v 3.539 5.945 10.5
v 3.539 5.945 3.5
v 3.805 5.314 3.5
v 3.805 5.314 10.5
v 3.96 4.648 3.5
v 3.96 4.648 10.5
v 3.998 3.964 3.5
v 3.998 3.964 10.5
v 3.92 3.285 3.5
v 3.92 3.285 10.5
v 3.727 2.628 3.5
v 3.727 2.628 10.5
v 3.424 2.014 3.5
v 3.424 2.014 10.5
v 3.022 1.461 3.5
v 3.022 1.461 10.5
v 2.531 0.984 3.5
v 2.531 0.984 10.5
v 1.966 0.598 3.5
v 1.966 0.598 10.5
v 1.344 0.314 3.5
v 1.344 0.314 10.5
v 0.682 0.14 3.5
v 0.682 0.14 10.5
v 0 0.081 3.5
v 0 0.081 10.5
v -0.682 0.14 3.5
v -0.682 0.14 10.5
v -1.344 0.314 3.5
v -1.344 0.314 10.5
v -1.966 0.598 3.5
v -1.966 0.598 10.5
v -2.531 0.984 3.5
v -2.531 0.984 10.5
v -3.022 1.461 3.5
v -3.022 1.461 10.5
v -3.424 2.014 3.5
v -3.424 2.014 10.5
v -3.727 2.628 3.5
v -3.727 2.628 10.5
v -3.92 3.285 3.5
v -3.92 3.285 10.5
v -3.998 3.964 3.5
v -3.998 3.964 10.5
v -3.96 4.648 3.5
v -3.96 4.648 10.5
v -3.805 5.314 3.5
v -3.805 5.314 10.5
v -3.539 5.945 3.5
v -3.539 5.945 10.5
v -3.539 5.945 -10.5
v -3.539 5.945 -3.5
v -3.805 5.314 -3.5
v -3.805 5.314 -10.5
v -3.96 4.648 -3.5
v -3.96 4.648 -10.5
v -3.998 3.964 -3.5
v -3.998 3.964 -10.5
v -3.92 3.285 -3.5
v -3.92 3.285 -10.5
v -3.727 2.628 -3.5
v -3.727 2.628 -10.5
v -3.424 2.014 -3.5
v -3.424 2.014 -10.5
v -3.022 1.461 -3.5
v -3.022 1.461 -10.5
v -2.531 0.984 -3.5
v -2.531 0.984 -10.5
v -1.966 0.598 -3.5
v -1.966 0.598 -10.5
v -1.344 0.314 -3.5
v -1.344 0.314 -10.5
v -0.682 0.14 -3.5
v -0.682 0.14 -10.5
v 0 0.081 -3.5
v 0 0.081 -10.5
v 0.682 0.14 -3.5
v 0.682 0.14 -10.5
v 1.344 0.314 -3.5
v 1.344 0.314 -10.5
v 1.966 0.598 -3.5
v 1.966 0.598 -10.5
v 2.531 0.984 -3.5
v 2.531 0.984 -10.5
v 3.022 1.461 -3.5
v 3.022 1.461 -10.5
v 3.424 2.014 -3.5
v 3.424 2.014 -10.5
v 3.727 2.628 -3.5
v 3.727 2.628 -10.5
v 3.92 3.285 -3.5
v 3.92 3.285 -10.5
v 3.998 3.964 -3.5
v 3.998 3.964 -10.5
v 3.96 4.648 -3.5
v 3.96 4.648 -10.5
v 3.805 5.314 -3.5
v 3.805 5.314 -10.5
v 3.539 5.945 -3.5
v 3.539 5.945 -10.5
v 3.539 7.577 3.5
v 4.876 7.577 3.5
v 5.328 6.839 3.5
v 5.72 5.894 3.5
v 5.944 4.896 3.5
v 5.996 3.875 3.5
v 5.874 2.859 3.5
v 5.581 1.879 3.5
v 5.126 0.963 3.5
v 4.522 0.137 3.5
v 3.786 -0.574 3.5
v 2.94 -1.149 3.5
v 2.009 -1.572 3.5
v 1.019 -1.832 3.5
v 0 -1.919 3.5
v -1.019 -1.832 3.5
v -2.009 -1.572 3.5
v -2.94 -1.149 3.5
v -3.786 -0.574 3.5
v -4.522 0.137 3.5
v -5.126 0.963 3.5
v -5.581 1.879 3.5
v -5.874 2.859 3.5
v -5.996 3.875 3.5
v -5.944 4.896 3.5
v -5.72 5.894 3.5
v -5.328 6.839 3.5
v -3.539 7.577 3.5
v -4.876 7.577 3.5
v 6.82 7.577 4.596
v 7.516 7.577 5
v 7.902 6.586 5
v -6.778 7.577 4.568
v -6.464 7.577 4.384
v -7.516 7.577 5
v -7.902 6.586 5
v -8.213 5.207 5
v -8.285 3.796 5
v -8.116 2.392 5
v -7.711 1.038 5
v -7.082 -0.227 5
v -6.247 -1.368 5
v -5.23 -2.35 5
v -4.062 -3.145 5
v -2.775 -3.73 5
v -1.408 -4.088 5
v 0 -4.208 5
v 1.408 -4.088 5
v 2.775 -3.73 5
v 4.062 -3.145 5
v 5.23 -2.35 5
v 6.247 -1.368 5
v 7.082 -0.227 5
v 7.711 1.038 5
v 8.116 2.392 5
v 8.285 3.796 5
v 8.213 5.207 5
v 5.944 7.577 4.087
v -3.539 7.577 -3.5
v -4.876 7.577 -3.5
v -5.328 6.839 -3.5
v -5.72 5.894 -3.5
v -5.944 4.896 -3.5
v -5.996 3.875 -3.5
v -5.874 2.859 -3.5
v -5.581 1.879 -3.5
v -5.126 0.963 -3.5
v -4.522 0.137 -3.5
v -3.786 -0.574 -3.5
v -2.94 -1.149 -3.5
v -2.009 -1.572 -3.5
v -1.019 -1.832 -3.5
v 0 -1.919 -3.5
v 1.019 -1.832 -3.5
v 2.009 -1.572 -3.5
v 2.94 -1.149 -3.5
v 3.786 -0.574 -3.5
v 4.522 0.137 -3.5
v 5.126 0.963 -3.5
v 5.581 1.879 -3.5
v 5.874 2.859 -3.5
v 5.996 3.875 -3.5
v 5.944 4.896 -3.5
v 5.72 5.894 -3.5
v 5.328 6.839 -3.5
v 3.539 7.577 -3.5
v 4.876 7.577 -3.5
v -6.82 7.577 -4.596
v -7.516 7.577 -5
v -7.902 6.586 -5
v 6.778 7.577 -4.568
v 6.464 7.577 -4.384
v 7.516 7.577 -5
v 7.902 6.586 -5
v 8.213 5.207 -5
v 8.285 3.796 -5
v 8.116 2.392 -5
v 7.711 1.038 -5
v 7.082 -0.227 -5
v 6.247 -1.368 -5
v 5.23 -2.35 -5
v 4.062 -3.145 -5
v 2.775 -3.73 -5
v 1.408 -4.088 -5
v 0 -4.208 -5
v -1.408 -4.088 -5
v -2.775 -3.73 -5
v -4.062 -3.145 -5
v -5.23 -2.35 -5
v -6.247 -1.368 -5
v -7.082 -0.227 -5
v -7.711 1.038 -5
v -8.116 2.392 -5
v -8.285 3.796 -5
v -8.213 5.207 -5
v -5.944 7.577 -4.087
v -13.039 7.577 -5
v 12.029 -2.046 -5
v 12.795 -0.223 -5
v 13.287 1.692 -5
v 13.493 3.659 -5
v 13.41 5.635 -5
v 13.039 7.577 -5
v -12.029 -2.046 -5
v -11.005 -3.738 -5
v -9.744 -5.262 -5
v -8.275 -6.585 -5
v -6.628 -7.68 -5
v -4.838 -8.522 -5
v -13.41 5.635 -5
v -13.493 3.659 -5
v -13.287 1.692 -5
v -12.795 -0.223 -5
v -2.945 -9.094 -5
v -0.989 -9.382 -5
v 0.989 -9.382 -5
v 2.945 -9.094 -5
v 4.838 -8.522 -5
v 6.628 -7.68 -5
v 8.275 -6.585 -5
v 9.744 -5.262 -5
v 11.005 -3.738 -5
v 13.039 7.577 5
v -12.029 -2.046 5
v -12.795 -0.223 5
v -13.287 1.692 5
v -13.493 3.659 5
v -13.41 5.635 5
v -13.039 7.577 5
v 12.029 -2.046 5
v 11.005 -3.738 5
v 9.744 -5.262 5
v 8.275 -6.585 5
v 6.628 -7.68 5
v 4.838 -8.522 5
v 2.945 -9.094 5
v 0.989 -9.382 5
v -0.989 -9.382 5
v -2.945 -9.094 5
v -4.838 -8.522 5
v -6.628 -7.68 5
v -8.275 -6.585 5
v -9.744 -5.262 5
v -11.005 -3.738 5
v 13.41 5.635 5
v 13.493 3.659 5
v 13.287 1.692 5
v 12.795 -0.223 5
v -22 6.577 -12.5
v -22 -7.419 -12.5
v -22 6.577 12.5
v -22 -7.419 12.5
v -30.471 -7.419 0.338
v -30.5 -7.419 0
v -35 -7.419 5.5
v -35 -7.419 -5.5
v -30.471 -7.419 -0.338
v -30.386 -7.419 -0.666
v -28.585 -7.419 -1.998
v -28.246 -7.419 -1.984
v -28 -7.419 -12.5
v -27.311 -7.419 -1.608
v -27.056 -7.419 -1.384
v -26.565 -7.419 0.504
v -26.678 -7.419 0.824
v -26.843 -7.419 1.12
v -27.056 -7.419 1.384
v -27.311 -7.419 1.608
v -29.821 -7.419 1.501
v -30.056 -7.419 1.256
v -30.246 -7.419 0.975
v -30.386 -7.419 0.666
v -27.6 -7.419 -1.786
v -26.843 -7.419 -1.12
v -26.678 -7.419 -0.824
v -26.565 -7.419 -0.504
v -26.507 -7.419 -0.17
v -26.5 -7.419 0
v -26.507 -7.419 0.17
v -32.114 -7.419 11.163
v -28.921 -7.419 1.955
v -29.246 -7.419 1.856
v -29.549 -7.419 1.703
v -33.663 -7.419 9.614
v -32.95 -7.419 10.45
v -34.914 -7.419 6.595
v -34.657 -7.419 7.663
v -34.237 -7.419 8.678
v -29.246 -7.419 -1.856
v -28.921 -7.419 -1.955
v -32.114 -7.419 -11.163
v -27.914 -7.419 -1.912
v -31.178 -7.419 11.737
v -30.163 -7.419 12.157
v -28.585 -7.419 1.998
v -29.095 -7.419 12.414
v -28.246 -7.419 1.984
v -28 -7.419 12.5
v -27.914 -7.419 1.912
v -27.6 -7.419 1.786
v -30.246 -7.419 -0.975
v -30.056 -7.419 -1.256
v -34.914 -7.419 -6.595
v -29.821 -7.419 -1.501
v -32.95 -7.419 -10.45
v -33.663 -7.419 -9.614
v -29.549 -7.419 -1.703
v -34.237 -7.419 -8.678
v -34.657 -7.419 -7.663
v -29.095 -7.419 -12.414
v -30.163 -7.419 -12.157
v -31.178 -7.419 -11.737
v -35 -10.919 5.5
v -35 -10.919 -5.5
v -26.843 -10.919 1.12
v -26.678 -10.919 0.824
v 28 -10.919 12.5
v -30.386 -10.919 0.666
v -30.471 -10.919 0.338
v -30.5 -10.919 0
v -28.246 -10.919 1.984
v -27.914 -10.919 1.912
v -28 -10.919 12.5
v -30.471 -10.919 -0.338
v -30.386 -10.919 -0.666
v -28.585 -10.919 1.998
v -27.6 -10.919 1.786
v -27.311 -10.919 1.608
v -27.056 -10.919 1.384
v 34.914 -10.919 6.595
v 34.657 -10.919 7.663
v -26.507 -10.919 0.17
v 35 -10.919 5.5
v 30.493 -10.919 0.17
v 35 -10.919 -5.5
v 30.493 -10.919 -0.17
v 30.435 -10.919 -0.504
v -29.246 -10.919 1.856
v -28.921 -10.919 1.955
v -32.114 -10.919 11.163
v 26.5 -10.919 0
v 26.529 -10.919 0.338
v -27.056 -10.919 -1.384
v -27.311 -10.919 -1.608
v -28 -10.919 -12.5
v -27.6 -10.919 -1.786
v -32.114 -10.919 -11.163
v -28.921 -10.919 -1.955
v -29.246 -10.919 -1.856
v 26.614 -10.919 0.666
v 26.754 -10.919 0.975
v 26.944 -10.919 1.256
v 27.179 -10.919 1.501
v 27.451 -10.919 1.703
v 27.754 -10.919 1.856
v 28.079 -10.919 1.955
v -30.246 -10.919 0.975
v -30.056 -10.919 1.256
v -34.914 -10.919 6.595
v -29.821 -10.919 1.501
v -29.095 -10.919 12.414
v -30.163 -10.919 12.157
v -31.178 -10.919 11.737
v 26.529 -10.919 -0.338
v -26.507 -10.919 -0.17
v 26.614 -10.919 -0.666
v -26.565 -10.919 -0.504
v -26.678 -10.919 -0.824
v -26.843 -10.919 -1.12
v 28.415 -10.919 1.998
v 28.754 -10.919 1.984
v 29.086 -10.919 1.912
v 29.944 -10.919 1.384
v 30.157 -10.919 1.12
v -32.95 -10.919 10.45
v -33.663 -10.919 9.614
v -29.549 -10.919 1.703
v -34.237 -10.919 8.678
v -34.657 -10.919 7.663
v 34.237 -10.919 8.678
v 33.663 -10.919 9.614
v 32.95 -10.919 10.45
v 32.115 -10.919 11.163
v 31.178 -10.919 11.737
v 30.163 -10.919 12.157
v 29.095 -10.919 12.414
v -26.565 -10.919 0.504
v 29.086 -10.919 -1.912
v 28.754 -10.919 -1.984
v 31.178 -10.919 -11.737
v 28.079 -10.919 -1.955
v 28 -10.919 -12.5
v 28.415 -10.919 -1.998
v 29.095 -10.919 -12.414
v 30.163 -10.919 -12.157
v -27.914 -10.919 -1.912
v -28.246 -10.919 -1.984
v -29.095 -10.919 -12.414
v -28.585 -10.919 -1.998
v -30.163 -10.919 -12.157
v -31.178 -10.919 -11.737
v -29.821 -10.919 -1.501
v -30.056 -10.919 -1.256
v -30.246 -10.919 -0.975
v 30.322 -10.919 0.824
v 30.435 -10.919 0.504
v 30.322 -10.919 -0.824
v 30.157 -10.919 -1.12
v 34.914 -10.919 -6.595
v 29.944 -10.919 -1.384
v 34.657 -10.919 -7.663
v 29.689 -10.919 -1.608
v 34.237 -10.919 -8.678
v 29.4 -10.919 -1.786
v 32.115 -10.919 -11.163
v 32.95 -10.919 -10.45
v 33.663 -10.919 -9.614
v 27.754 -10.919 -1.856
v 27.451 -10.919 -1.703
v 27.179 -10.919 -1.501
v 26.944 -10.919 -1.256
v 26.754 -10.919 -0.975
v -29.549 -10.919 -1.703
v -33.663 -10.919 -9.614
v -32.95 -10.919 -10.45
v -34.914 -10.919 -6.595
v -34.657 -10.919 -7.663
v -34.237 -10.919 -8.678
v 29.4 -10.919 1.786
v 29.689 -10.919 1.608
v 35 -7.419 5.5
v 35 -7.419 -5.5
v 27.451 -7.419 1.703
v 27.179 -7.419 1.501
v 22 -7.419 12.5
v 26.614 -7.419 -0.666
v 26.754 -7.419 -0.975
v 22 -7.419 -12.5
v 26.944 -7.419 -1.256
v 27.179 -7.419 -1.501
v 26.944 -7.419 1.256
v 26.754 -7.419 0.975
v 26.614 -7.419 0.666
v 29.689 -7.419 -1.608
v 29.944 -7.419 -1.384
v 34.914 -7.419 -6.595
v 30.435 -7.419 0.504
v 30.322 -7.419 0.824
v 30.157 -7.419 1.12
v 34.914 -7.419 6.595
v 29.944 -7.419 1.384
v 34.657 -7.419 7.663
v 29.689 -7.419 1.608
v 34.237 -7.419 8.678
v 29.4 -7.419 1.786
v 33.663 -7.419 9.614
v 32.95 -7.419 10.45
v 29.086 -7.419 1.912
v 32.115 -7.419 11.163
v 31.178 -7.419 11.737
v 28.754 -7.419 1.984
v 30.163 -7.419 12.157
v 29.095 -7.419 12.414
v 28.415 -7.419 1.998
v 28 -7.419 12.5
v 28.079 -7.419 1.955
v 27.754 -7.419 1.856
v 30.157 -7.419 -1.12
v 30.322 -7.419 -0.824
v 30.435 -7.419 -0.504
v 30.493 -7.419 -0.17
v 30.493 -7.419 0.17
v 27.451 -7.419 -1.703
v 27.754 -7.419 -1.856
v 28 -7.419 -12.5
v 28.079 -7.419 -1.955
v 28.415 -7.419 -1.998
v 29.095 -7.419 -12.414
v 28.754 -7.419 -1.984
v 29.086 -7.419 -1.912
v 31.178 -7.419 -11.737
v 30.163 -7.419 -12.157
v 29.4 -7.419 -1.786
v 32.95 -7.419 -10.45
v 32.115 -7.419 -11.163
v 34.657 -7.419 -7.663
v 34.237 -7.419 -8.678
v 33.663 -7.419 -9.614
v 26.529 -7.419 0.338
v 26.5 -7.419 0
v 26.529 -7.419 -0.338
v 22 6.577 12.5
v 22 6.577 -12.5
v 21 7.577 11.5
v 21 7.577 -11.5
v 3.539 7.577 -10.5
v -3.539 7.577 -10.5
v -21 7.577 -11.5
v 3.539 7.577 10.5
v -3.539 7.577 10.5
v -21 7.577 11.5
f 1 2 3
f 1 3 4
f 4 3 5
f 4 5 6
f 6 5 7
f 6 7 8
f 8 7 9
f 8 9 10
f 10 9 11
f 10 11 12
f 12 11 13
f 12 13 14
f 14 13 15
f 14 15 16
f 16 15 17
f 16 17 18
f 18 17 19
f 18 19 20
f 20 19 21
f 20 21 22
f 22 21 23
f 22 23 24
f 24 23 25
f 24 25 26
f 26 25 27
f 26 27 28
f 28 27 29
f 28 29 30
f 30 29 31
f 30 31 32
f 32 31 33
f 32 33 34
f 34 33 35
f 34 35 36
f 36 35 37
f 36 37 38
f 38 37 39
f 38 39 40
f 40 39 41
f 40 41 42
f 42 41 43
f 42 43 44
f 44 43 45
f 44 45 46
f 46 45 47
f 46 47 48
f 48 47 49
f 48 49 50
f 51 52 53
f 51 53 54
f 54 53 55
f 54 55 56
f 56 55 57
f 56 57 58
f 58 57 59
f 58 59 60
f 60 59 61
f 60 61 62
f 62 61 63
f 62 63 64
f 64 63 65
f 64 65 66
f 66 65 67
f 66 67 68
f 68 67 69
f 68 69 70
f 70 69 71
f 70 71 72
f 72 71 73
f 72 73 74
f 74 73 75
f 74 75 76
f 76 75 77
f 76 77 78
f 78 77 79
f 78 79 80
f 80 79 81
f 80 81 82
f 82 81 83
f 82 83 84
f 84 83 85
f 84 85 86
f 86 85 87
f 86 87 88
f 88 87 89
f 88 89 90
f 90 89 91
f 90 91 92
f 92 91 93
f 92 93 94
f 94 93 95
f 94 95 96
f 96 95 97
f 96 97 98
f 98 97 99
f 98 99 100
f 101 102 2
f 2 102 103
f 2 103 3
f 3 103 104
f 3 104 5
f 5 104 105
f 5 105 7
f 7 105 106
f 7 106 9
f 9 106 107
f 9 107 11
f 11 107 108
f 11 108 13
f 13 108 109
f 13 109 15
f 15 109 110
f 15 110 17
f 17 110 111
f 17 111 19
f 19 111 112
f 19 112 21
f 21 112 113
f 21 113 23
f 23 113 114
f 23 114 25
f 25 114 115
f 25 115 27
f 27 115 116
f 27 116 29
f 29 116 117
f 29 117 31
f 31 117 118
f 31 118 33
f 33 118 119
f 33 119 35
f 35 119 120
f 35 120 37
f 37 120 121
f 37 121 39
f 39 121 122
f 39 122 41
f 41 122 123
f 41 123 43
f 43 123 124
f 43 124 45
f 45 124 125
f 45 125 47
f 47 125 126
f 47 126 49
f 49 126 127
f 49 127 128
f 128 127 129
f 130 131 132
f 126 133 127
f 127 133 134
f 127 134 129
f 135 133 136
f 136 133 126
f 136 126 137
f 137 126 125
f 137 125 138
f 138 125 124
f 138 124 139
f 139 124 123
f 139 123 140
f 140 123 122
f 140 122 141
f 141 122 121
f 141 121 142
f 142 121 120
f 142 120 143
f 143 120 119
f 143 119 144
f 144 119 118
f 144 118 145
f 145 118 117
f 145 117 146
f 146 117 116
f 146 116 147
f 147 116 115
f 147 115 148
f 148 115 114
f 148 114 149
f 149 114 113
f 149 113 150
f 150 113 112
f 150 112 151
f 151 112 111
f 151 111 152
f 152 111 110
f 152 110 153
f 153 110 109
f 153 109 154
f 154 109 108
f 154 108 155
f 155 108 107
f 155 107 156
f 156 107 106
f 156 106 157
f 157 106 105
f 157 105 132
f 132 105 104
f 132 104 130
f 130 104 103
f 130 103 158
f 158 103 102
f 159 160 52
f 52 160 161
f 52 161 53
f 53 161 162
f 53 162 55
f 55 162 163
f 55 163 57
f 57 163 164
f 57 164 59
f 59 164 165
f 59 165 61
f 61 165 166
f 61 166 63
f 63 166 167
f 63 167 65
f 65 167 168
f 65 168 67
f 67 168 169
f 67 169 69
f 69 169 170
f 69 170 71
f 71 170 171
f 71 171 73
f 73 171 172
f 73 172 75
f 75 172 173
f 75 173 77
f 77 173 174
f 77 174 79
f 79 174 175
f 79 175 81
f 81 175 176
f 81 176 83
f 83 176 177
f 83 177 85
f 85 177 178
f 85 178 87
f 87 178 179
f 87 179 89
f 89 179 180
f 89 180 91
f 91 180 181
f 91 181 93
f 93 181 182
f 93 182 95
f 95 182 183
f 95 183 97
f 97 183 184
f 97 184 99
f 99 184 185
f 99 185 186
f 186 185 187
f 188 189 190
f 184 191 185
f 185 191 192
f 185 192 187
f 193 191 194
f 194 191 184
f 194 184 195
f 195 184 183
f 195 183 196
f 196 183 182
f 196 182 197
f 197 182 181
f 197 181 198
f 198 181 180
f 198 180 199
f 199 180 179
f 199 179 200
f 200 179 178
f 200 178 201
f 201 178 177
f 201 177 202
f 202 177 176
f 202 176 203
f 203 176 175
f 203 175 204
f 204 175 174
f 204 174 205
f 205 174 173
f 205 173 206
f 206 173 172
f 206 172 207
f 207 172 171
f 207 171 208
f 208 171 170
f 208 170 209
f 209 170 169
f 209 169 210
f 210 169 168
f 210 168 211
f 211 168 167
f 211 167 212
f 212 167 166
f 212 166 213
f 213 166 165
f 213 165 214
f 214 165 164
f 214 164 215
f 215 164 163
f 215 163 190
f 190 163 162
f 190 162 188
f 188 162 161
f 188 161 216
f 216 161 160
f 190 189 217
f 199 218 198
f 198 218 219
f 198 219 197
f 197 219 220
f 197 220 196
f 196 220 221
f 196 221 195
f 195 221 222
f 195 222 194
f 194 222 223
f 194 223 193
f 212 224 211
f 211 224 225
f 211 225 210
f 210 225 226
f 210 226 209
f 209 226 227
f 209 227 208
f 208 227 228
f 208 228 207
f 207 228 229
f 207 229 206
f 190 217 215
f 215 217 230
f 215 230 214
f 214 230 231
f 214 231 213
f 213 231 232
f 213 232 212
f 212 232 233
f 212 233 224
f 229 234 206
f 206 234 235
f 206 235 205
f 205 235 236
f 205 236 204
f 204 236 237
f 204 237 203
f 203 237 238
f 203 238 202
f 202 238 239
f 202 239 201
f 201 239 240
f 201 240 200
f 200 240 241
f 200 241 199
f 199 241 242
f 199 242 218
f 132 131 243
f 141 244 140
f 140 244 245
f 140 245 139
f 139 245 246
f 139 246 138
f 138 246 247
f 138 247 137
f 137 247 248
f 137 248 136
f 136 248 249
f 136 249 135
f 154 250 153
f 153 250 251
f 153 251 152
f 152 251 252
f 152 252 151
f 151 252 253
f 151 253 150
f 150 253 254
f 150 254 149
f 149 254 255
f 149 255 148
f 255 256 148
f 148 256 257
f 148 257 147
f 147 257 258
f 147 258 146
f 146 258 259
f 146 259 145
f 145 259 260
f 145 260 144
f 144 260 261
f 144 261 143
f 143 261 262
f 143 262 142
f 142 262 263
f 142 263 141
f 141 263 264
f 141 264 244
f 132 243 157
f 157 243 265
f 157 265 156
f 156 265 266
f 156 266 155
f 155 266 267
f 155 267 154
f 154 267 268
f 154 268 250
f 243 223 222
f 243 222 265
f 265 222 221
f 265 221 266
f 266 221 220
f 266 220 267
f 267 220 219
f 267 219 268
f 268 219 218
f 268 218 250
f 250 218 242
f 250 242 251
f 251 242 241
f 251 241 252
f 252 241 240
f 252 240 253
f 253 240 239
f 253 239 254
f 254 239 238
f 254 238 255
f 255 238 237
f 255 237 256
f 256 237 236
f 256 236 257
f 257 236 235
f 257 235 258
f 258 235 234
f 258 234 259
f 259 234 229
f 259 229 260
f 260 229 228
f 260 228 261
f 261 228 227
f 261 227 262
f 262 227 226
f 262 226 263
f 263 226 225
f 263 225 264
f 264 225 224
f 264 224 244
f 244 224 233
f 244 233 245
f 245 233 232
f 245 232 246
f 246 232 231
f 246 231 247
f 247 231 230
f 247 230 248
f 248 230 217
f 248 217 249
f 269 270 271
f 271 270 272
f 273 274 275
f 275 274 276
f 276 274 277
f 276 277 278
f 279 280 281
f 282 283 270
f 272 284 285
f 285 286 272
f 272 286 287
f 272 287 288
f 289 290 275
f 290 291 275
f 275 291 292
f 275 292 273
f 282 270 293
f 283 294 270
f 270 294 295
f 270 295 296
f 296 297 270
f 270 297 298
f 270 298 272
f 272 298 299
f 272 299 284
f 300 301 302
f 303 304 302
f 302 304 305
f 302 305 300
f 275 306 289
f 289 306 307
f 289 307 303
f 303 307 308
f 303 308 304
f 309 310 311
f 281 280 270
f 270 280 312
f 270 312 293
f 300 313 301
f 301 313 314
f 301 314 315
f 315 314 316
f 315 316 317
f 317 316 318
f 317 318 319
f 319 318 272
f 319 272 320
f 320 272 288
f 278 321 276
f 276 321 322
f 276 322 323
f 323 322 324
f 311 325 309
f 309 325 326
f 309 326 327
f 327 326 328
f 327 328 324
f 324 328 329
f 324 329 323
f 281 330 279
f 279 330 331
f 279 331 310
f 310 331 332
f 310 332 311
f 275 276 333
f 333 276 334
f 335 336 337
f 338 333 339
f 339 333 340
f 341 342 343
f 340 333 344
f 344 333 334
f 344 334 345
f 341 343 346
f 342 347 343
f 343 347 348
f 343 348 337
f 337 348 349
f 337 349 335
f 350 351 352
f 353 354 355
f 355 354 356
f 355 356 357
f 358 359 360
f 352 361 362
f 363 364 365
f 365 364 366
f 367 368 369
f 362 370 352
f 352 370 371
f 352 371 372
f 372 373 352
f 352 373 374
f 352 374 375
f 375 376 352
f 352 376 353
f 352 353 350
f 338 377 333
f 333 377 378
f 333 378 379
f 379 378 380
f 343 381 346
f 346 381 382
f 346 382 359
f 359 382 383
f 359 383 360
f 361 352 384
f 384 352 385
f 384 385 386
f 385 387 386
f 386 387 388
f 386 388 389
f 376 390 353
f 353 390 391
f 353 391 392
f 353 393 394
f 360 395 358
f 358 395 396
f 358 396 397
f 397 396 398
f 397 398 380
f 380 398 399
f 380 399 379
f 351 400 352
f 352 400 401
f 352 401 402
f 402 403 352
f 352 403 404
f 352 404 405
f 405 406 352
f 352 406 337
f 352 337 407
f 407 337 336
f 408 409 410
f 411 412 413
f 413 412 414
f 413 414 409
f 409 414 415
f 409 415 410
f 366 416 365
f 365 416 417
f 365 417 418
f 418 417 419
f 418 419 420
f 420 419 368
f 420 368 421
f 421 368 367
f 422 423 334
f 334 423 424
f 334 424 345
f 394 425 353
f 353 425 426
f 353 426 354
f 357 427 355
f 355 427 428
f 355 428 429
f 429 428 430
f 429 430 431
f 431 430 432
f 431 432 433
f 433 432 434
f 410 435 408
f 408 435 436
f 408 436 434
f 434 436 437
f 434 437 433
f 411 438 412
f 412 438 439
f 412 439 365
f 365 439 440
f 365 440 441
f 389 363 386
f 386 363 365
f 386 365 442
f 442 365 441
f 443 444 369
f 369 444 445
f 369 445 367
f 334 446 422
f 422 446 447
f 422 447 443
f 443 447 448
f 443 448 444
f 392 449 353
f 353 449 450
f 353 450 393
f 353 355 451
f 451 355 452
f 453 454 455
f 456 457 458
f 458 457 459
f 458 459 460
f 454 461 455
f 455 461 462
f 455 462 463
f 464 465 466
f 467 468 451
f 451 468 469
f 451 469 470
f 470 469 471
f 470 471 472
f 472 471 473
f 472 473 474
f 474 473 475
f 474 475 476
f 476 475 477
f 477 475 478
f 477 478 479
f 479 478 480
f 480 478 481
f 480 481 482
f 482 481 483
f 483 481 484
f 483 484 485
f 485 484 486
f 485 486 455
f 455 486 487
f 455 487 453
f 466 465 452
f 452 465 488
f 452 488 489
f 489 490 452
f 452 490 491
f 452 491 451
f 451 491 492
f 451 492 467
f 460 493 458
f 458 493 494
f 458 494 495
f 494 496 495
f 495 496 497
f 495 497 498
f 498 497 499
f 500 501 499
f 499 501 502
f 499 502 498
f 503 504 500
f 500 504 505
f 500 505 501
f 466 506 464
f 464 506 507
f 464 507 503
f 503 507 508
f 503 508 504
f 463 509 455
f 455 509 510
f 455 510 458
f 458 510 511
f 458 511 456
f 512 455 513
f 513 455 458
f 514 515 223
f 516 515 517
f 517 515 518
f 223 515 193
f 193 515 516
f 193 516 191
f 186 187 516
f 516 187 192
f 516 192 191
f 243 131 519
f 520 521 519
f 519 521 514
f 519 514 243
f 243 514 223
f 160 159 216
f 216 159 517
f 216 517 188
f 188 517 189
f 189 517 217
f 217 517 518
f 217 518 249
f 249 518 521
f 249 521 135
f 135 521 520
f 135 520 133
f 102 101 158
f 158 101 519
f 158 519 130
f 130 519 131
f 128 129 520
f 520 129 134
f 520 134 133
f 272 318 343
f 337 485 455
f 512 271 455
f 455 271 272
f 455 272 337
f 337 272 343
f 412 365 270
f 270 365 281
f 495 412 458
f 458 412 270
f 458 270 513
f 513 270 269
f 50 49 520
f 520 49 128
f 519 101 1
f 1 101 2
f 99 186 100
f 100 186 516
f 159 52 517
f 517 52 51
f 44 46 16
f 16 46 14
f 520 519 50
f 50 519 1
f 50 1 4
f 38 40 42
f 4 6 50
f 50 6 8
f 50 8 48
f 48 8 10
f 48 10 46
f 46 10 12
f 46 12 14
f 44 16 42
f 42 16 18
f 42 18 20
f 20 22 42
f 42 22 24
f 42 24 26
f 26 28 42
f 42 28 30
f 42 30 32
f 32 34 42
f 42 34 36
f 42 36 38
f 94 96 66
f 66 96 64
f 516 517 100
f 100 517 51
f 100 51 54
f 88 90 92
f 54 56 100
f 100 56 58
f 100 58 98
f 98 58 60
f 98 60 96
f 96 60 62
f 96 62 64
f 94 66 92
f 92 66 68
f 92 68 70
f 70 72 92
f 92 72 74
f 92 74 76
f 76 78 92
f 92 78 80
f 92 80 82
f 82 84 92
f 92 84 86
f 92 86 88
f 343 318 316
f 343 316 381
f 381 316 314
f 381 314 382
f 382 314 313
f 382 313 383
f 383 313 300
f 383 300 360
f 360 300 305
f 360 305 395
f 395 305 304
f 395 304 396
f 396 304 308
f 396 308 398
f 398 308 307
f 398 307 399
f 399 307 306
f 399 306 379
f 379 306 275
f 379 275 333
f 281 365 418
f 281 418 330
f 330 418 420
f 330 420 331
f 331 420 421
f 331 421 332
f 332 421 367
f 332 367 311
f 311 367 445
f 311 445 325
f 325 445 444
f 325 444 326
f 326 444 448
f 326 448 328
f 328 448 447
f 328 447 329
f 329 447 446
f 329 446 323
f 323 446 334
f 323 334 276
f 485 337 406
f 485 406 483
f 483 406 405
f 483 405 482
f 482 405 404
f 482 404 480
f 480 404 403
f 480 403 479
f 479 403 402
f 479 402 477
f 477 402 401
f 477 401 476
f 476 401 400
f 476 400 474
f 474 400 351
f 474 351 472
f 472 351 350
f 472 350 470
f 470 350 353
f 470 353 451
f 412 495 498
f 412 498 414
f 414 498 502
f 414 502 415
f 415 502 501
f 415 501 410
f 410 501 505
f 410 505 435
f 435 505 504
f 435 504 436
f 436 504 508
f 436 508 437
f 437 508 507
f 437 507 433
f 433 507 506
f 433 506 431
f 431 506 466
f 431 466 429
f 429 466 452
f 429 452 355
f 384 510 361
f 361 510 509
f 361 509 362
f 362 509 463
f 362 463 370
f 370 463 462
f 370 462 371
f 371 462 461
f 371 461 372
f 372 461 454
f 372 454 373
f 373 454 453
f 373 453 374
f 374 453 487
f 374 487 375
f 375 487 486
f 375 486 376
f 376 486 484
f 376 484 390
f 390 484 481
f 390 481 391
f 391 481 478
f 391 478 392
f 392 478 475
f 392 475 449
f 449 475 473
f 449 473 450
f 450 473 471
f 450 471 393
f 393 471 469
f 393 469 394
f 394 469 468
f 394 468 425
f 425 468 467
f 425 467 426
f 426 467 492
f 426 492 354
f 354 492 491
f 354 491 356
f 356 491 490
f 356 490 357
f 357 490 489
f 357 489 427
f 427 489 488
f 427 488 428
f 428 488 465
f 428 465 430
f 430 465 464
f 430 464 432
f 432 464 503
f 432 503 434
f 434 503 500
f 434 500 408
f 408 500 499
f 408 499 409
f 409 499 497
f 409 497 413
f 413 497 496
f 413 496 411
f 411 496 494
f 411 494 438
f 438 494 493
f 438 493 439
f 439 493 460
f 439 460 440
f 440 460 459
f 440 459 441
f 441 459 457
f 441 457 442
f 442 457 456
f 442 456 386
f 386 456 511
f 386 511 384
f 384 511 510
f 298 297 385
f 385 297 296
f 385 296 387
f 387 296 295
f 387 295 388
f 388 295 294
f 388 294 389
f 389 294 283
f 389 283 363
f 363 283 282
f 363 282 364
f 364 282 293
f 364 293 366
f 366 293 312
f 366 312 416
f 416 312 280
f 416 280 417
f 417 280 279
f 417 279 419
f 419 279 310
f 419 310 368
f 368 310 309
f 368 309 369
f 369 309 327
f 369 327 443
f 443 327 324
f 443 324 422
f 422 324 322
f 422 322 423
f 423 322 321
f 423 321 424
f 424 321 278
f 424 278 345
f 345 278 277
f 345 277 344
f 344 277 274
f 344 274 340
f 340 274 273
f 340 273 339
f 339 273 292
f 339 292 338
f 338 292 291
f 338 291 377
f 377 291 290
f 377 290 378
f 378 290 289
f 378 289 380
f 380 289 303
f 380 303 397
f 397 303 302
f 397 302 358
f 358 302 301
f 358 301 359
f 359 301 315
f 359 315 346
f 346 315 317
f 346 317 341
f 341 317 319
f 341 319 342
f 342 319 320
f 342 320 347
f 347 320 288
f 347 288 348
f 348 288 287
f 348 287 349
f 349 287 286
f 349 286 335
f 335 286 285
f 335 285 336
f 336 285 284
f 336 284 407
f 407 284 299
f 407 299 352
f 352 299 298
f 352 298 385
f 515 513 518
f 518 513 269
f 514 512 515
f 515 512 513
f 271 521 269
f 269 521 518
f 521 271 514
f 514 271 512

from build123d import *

# Parameters (mm, degrees)
BOSS_EXTRUDE1_DEPTH = 12.5
BOSS_EXTRUDE2_DEPTH = 7.5
BOSS_EXTRUDE3_DEPTH = 7.5
SKETCH5_W           = 70
SKETCH5_H           = 25
CUT_EXTRUDE1_DEPTH  = 10
CUT_EXTRUDE2_START  = -1.632728
SKETCH6_W           = 7.078863834
SKETCH6_H           = 10
CUT_EXTRUDE2_DEPTH  = 1.632728
BOSS_EXTRUDE4_DEPTH = 2
FILLET1_R           = 7
SKETCH8_R           = 2
CUT_EXTRUDE3_DEPTH  = 40
CHAMFER1_SIZE       = 1


with BuildPart() as part:
    # Sketch1 → Boss-Extrude1 (new, symmetric)
    with BuildSketch(Plane.XY):
        with BuildLine():
            Line((22, 2.58125), (22, -7.41875))
            Line((22, -7.41875), (35, -7.41875))
            Line((35, -7.41875), (35, -10.91875))
            Line((35, -10.91875), (22, -10.91875))
            Line((22, -10.91875), (-22, -10.91875))
            Line((-22, -10.91875), (-35, -10.91875))
            Line((-35, -10.91875), (-35, -7.41875))
            Line((-35, -7.41875), (-22, -7.41875))
            Line((-22, -7.41875), (-22, 2.58125))
            Line((-22, 2.58125), (-22, 7.577421516))
            Line((-22, 7.577421516), (-13.039431917, 7.577421516))
            ThreePointArc((-13.039431917, 7.577421516), (0, -9.41875), (13.039431917, 7.577421516))
            Line((13.039431917, 7.577421516), (22, 7.577421516))
            Line((22, 7.577421516), (22, 2.58125))
        make_face()
    extrude(amount=BOSS_EXTRUDE1_DEPTH, both=True)

    # Sketch2 → Boss-Extrude2 (add)
    with BuildSketch(Plane.XY.offset(5)):
        with BuildLine():
            Line((-3.539431917, 5.944693506), (-3.539431917, 7.577421516))
            Line((-3.539431917, 7.577421516), (-13.039431917, 7.577421516))
            ThreePointArc((-13.039431917, 7.577421516), (0, -9.41875), (13.039431917, 7.577421516))
            Line((13.039431917, 7.577421516), (3.539431917, 7.577421516))
            Line((3.539431917, 7.577421516), (3.539431917, 5.944693506))
            ThreePointArc((3.539431917, 5.944693506), (0, 0.08125), (-3.539431917, 5.944693506))
        make_face()
    extrude(amount=BOSS_EXTRUDE2_DEPTH)

    # Sketch3 → Boss-Extrude3 (add)
    with BuildSketch(Plane.XY.offset(-5)):
        with BuildLine():
            Line((3.539431917, 7.577421516), (3.539431917, 5.944693506))
            ThreePointArc((3.539431917, 5.944693506), (0, 0.08125), (-3.539431917, 5.944693506))
            Line((-3.539431917, 5.944693506), (-3.539431917, 7.577421516))
            Line((-3.539431917, 7.577421516), (-13.039431917, 7.577421516))
            ThreePointArc((-13.039431917, 7.577421516), (0, -9.41875), (13.039431917, 7.577421516))
            Line((13.039431917, 7.577421516), (3.539431917, 7.577421516))
        make_face()
    extrude(amount=-BOSS_EXTRUDE3_DEPTH)

    # Sketch4 → Revolve1 (revolve)
    with BuildSketch(Plane(origin=(0, 4.08125, 0), x_dir=(1, 0, 0), z_dir=(0, 1, 0)), mode=Mode.PRIVATE) as revolve1_sk:
        Polygon((-4, -5), (-4, -3.5), (-6, -3.5), (-8.289431917, -5), align=None)
        Polygon((-4, 5), (-4, 3.5), (-6, 3.5), (-8.289431917, 5), align=None)
    revolve(revolve1_sk.sketch.rotate(Axis((0, 4.08125, 0), (0, 0, -1)), 27.765950742), axis=Axis((0, 4.08125, 0), (0, 0, -1)))

    # Sketch5 → Cut-Extrude1 (cut)
    with BuildSketch(Plane(origin=(0, 7.577421516, 0), x_dir=(1, 0, 0), z_dir=(0, 1, 0))):
        Rectangle(SKETCH5_W, SKETCH5_H)
    extrude(amount=CUT_EXTRUDE1_DEPTH, mode=Mode.SUBTRACT)

    # Sketch6 → Cut-Extrude2 (cut)
    with BuildSketch(Plane(origin=(0, 7.577421516, 0), x_dir=(1, 0, 0), z_dir=(0, 1, 0)).offset(CUT_EXTRUDE2_START)):
        Rectangle(SKETCH6_W, SKETCH6_H)
    extrude(amount=CUT_EXTRUDE2_DEPTH, mode=Mode.SUBTRACT)

    # Sketch7 → Boss-Extrude4 (add)
    with BuildSketch(Plane.XY.offset(12.5)):
        Polygon((-22, 2.38125), (-22, 7.577421516), (22, 7.577421516), (22, -3.038829349), (22, -10.91875), (-22, -10.91875), align=None)
    boss_extrude4 = extrude(amount=-BOSS_EXTRUDE4_DEPTH)

    # Mirror1: Boss-Extrude4 across plane
    add(boss_extrude4.mirror(Plane.XY))

    # Fillet1
    fillet1_edges = [part.edges().sort_by_distance(p)[0] for p in [
        (35, -9.16875, -12.5),
        (-35, -9.16875, -12.5),
        (-35, -9.16875, 12.5),
        (35, -9.16875, 12.5),
    ]]
    fillet(fillet1_edges, radius=FILLET1_R)

    # Sketch8 → Cut-Extrude3 (cut)
    with BuildSketch(Plane(origin=(0, -7.41875, 0), x_dir=(1, 0, 0), z_dir=(0, 1, 0))):
        with Locations(Location((28.5, 0, 0), (0, 0, 180))):
            Circle(SKETCH8_R)
        with Locations(Location((-28.5, 0, 0), (0, 0, 180))):
            Circle(SKETCH8_R)
    extrude(amount=-CUT_EXTRUDE3_DEPTH, mode=Mode.SUBTRACT)

    # Chamfer1
    chamfer1_edges = [part.edges().sort_by_distance(p)[0] for p in [
        (0, 7.577421516, -12.5),
        (22, 7.577421516, 0),
        (-22, 7.577421516, 0),
        (0, 7.577421516, 12.5),
    ]]
    chamfer(chamfer1_edges, length=CHAMFER1_SIZE)


solid = part.part
